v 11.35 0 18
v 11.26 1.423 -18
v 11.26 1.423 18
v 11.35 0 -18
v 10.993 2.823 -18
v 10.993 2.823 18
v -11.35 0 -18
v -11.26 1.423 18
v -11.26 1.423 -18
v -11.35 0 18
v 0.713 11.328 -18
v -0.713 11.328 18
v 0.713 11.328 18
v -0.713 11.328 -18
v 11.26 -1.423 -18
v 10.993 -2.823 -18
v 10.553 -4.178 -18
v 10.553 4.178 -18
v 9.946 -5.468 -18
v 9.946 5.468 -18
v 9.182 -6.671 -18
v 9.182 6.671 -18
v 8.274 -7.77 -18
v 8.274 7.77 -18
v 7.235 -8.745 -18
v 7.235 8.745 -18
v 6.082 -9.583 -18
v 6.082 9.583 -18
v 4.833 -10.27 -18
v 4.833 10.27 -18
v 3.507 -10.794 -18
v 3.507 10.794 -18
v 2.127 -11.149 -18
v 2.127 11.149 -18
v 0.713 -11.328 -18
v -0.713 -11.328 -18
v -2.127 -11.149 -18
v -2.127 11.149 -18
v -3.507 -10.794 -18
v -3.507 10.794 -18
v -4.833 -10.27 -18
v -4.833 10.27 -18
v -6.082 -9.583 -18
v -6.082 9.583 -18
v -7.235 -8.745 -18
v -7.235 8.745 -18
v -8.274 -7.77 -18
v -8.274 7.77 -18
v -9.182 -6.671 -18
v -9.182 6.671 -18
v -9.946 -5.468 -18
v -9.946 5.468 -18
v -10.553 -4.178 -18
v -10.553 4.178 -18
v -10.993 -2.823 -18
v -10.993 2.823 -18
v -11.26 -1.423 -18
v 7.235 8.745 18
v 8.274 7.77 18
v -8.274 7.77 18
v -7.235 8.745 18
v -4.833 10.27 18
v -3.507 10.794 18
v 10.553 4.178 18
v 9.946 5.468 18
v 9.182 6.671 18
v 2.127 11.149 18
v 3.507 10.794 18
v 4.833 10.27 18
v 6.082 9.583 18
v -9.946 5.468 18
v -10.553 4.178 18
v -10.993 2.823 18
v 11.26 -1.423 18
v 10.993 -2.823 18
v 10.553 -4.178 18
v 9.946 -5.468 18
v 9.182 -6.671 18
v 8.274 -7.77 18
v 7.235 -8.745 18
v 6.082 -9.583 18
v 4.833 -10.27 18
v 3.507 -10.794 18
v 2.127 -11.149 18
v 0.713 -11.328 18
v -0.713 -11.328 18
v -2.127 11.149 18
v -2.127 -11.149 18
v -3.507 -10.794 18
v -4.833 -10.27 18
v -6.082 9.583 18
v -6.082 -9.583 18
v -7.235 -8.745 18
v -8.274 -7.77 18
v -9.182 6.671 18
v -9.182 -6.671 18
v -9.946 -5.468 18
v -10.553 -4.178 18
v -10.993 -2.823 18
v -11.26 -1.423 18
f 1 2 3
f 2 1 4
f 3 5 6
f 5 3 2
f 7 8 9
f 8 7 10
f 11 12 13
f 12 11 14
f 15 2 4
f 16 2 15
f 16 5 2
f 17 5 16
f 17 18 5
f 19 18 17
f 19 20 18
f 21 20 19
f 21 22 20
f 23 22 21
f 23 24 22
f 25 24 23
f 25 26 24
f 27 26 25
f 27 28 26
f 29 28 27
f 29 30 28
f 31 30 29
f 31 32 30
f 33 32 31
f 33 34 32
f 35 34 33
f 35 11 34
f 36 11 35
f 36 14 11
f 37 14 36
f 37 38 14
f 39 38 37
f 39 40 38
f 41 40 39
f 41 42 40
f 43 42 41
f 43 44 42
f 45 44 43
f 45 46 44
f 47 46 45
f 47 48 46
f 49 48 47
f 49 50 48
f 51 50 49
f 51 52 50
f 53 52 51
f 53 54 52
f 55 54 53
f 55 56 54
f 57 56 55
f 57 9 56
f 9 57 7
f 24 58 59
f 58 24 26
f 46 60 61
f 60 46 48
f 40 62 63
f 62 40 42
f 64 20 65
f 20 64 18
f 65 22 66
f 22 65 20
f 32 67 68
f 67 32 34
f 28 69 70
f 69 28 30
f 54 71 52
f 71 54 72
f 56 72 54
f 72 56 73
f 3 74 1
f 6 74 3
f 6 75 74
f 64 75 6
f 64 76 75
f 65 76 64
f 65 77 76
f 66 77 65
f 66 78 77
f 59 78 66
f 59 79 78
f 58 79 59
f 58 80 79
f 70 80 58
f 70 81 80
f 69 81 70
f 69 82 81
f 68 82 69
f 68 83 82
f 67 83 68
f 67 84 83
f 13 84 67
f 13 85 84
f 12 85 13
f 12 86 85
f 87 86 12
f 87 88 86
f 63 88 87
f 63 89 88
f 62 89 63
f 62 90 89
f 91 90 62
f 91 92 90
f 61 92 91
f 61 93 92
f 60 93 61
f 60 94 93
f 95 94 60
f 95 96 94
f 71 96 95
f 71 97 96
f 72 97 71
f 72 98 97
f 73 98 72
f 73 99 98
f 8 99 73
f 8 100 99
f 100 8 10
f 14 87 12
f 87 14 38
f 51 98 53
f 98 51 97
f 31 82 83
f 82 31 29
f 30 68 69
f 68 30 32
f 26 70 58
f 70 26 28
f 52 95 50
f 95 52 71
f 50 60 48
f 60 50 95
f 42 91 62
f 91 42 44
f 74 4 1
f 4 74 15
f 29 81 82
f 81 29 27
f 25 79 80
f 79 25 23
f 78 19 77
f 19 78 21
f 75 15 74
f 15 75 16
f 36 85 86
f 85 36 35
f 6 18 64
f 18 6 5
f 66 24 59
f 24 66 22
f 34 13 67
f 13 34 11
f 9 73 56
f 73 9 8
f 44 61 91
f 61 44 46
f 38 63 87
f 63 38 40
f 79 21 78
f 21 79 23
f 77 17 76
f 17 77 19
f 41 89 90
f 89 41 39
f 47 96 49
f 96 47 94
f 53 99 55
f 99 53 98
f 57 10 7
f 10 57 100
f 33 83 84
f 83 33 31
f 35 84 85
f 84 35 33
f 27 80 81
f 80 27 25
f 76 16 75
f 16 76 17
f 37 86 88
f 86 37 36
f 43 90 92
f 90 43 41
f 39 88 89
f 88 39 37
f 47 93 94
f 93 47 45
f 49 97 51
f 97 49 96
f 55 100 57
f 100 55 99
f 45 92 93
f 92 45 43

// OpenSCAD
$fn = 50;


difference() {
	union() {
		translate(v = [0, 0, -18.0000000000]) {
			cylinder(h = 36, r = 11.3500000000);
		}
	}
	union() {
		translate(v = [0, 0, -100.0000000000]) {
			cylinder(h = 200, r = 0);
		}
	}
}
